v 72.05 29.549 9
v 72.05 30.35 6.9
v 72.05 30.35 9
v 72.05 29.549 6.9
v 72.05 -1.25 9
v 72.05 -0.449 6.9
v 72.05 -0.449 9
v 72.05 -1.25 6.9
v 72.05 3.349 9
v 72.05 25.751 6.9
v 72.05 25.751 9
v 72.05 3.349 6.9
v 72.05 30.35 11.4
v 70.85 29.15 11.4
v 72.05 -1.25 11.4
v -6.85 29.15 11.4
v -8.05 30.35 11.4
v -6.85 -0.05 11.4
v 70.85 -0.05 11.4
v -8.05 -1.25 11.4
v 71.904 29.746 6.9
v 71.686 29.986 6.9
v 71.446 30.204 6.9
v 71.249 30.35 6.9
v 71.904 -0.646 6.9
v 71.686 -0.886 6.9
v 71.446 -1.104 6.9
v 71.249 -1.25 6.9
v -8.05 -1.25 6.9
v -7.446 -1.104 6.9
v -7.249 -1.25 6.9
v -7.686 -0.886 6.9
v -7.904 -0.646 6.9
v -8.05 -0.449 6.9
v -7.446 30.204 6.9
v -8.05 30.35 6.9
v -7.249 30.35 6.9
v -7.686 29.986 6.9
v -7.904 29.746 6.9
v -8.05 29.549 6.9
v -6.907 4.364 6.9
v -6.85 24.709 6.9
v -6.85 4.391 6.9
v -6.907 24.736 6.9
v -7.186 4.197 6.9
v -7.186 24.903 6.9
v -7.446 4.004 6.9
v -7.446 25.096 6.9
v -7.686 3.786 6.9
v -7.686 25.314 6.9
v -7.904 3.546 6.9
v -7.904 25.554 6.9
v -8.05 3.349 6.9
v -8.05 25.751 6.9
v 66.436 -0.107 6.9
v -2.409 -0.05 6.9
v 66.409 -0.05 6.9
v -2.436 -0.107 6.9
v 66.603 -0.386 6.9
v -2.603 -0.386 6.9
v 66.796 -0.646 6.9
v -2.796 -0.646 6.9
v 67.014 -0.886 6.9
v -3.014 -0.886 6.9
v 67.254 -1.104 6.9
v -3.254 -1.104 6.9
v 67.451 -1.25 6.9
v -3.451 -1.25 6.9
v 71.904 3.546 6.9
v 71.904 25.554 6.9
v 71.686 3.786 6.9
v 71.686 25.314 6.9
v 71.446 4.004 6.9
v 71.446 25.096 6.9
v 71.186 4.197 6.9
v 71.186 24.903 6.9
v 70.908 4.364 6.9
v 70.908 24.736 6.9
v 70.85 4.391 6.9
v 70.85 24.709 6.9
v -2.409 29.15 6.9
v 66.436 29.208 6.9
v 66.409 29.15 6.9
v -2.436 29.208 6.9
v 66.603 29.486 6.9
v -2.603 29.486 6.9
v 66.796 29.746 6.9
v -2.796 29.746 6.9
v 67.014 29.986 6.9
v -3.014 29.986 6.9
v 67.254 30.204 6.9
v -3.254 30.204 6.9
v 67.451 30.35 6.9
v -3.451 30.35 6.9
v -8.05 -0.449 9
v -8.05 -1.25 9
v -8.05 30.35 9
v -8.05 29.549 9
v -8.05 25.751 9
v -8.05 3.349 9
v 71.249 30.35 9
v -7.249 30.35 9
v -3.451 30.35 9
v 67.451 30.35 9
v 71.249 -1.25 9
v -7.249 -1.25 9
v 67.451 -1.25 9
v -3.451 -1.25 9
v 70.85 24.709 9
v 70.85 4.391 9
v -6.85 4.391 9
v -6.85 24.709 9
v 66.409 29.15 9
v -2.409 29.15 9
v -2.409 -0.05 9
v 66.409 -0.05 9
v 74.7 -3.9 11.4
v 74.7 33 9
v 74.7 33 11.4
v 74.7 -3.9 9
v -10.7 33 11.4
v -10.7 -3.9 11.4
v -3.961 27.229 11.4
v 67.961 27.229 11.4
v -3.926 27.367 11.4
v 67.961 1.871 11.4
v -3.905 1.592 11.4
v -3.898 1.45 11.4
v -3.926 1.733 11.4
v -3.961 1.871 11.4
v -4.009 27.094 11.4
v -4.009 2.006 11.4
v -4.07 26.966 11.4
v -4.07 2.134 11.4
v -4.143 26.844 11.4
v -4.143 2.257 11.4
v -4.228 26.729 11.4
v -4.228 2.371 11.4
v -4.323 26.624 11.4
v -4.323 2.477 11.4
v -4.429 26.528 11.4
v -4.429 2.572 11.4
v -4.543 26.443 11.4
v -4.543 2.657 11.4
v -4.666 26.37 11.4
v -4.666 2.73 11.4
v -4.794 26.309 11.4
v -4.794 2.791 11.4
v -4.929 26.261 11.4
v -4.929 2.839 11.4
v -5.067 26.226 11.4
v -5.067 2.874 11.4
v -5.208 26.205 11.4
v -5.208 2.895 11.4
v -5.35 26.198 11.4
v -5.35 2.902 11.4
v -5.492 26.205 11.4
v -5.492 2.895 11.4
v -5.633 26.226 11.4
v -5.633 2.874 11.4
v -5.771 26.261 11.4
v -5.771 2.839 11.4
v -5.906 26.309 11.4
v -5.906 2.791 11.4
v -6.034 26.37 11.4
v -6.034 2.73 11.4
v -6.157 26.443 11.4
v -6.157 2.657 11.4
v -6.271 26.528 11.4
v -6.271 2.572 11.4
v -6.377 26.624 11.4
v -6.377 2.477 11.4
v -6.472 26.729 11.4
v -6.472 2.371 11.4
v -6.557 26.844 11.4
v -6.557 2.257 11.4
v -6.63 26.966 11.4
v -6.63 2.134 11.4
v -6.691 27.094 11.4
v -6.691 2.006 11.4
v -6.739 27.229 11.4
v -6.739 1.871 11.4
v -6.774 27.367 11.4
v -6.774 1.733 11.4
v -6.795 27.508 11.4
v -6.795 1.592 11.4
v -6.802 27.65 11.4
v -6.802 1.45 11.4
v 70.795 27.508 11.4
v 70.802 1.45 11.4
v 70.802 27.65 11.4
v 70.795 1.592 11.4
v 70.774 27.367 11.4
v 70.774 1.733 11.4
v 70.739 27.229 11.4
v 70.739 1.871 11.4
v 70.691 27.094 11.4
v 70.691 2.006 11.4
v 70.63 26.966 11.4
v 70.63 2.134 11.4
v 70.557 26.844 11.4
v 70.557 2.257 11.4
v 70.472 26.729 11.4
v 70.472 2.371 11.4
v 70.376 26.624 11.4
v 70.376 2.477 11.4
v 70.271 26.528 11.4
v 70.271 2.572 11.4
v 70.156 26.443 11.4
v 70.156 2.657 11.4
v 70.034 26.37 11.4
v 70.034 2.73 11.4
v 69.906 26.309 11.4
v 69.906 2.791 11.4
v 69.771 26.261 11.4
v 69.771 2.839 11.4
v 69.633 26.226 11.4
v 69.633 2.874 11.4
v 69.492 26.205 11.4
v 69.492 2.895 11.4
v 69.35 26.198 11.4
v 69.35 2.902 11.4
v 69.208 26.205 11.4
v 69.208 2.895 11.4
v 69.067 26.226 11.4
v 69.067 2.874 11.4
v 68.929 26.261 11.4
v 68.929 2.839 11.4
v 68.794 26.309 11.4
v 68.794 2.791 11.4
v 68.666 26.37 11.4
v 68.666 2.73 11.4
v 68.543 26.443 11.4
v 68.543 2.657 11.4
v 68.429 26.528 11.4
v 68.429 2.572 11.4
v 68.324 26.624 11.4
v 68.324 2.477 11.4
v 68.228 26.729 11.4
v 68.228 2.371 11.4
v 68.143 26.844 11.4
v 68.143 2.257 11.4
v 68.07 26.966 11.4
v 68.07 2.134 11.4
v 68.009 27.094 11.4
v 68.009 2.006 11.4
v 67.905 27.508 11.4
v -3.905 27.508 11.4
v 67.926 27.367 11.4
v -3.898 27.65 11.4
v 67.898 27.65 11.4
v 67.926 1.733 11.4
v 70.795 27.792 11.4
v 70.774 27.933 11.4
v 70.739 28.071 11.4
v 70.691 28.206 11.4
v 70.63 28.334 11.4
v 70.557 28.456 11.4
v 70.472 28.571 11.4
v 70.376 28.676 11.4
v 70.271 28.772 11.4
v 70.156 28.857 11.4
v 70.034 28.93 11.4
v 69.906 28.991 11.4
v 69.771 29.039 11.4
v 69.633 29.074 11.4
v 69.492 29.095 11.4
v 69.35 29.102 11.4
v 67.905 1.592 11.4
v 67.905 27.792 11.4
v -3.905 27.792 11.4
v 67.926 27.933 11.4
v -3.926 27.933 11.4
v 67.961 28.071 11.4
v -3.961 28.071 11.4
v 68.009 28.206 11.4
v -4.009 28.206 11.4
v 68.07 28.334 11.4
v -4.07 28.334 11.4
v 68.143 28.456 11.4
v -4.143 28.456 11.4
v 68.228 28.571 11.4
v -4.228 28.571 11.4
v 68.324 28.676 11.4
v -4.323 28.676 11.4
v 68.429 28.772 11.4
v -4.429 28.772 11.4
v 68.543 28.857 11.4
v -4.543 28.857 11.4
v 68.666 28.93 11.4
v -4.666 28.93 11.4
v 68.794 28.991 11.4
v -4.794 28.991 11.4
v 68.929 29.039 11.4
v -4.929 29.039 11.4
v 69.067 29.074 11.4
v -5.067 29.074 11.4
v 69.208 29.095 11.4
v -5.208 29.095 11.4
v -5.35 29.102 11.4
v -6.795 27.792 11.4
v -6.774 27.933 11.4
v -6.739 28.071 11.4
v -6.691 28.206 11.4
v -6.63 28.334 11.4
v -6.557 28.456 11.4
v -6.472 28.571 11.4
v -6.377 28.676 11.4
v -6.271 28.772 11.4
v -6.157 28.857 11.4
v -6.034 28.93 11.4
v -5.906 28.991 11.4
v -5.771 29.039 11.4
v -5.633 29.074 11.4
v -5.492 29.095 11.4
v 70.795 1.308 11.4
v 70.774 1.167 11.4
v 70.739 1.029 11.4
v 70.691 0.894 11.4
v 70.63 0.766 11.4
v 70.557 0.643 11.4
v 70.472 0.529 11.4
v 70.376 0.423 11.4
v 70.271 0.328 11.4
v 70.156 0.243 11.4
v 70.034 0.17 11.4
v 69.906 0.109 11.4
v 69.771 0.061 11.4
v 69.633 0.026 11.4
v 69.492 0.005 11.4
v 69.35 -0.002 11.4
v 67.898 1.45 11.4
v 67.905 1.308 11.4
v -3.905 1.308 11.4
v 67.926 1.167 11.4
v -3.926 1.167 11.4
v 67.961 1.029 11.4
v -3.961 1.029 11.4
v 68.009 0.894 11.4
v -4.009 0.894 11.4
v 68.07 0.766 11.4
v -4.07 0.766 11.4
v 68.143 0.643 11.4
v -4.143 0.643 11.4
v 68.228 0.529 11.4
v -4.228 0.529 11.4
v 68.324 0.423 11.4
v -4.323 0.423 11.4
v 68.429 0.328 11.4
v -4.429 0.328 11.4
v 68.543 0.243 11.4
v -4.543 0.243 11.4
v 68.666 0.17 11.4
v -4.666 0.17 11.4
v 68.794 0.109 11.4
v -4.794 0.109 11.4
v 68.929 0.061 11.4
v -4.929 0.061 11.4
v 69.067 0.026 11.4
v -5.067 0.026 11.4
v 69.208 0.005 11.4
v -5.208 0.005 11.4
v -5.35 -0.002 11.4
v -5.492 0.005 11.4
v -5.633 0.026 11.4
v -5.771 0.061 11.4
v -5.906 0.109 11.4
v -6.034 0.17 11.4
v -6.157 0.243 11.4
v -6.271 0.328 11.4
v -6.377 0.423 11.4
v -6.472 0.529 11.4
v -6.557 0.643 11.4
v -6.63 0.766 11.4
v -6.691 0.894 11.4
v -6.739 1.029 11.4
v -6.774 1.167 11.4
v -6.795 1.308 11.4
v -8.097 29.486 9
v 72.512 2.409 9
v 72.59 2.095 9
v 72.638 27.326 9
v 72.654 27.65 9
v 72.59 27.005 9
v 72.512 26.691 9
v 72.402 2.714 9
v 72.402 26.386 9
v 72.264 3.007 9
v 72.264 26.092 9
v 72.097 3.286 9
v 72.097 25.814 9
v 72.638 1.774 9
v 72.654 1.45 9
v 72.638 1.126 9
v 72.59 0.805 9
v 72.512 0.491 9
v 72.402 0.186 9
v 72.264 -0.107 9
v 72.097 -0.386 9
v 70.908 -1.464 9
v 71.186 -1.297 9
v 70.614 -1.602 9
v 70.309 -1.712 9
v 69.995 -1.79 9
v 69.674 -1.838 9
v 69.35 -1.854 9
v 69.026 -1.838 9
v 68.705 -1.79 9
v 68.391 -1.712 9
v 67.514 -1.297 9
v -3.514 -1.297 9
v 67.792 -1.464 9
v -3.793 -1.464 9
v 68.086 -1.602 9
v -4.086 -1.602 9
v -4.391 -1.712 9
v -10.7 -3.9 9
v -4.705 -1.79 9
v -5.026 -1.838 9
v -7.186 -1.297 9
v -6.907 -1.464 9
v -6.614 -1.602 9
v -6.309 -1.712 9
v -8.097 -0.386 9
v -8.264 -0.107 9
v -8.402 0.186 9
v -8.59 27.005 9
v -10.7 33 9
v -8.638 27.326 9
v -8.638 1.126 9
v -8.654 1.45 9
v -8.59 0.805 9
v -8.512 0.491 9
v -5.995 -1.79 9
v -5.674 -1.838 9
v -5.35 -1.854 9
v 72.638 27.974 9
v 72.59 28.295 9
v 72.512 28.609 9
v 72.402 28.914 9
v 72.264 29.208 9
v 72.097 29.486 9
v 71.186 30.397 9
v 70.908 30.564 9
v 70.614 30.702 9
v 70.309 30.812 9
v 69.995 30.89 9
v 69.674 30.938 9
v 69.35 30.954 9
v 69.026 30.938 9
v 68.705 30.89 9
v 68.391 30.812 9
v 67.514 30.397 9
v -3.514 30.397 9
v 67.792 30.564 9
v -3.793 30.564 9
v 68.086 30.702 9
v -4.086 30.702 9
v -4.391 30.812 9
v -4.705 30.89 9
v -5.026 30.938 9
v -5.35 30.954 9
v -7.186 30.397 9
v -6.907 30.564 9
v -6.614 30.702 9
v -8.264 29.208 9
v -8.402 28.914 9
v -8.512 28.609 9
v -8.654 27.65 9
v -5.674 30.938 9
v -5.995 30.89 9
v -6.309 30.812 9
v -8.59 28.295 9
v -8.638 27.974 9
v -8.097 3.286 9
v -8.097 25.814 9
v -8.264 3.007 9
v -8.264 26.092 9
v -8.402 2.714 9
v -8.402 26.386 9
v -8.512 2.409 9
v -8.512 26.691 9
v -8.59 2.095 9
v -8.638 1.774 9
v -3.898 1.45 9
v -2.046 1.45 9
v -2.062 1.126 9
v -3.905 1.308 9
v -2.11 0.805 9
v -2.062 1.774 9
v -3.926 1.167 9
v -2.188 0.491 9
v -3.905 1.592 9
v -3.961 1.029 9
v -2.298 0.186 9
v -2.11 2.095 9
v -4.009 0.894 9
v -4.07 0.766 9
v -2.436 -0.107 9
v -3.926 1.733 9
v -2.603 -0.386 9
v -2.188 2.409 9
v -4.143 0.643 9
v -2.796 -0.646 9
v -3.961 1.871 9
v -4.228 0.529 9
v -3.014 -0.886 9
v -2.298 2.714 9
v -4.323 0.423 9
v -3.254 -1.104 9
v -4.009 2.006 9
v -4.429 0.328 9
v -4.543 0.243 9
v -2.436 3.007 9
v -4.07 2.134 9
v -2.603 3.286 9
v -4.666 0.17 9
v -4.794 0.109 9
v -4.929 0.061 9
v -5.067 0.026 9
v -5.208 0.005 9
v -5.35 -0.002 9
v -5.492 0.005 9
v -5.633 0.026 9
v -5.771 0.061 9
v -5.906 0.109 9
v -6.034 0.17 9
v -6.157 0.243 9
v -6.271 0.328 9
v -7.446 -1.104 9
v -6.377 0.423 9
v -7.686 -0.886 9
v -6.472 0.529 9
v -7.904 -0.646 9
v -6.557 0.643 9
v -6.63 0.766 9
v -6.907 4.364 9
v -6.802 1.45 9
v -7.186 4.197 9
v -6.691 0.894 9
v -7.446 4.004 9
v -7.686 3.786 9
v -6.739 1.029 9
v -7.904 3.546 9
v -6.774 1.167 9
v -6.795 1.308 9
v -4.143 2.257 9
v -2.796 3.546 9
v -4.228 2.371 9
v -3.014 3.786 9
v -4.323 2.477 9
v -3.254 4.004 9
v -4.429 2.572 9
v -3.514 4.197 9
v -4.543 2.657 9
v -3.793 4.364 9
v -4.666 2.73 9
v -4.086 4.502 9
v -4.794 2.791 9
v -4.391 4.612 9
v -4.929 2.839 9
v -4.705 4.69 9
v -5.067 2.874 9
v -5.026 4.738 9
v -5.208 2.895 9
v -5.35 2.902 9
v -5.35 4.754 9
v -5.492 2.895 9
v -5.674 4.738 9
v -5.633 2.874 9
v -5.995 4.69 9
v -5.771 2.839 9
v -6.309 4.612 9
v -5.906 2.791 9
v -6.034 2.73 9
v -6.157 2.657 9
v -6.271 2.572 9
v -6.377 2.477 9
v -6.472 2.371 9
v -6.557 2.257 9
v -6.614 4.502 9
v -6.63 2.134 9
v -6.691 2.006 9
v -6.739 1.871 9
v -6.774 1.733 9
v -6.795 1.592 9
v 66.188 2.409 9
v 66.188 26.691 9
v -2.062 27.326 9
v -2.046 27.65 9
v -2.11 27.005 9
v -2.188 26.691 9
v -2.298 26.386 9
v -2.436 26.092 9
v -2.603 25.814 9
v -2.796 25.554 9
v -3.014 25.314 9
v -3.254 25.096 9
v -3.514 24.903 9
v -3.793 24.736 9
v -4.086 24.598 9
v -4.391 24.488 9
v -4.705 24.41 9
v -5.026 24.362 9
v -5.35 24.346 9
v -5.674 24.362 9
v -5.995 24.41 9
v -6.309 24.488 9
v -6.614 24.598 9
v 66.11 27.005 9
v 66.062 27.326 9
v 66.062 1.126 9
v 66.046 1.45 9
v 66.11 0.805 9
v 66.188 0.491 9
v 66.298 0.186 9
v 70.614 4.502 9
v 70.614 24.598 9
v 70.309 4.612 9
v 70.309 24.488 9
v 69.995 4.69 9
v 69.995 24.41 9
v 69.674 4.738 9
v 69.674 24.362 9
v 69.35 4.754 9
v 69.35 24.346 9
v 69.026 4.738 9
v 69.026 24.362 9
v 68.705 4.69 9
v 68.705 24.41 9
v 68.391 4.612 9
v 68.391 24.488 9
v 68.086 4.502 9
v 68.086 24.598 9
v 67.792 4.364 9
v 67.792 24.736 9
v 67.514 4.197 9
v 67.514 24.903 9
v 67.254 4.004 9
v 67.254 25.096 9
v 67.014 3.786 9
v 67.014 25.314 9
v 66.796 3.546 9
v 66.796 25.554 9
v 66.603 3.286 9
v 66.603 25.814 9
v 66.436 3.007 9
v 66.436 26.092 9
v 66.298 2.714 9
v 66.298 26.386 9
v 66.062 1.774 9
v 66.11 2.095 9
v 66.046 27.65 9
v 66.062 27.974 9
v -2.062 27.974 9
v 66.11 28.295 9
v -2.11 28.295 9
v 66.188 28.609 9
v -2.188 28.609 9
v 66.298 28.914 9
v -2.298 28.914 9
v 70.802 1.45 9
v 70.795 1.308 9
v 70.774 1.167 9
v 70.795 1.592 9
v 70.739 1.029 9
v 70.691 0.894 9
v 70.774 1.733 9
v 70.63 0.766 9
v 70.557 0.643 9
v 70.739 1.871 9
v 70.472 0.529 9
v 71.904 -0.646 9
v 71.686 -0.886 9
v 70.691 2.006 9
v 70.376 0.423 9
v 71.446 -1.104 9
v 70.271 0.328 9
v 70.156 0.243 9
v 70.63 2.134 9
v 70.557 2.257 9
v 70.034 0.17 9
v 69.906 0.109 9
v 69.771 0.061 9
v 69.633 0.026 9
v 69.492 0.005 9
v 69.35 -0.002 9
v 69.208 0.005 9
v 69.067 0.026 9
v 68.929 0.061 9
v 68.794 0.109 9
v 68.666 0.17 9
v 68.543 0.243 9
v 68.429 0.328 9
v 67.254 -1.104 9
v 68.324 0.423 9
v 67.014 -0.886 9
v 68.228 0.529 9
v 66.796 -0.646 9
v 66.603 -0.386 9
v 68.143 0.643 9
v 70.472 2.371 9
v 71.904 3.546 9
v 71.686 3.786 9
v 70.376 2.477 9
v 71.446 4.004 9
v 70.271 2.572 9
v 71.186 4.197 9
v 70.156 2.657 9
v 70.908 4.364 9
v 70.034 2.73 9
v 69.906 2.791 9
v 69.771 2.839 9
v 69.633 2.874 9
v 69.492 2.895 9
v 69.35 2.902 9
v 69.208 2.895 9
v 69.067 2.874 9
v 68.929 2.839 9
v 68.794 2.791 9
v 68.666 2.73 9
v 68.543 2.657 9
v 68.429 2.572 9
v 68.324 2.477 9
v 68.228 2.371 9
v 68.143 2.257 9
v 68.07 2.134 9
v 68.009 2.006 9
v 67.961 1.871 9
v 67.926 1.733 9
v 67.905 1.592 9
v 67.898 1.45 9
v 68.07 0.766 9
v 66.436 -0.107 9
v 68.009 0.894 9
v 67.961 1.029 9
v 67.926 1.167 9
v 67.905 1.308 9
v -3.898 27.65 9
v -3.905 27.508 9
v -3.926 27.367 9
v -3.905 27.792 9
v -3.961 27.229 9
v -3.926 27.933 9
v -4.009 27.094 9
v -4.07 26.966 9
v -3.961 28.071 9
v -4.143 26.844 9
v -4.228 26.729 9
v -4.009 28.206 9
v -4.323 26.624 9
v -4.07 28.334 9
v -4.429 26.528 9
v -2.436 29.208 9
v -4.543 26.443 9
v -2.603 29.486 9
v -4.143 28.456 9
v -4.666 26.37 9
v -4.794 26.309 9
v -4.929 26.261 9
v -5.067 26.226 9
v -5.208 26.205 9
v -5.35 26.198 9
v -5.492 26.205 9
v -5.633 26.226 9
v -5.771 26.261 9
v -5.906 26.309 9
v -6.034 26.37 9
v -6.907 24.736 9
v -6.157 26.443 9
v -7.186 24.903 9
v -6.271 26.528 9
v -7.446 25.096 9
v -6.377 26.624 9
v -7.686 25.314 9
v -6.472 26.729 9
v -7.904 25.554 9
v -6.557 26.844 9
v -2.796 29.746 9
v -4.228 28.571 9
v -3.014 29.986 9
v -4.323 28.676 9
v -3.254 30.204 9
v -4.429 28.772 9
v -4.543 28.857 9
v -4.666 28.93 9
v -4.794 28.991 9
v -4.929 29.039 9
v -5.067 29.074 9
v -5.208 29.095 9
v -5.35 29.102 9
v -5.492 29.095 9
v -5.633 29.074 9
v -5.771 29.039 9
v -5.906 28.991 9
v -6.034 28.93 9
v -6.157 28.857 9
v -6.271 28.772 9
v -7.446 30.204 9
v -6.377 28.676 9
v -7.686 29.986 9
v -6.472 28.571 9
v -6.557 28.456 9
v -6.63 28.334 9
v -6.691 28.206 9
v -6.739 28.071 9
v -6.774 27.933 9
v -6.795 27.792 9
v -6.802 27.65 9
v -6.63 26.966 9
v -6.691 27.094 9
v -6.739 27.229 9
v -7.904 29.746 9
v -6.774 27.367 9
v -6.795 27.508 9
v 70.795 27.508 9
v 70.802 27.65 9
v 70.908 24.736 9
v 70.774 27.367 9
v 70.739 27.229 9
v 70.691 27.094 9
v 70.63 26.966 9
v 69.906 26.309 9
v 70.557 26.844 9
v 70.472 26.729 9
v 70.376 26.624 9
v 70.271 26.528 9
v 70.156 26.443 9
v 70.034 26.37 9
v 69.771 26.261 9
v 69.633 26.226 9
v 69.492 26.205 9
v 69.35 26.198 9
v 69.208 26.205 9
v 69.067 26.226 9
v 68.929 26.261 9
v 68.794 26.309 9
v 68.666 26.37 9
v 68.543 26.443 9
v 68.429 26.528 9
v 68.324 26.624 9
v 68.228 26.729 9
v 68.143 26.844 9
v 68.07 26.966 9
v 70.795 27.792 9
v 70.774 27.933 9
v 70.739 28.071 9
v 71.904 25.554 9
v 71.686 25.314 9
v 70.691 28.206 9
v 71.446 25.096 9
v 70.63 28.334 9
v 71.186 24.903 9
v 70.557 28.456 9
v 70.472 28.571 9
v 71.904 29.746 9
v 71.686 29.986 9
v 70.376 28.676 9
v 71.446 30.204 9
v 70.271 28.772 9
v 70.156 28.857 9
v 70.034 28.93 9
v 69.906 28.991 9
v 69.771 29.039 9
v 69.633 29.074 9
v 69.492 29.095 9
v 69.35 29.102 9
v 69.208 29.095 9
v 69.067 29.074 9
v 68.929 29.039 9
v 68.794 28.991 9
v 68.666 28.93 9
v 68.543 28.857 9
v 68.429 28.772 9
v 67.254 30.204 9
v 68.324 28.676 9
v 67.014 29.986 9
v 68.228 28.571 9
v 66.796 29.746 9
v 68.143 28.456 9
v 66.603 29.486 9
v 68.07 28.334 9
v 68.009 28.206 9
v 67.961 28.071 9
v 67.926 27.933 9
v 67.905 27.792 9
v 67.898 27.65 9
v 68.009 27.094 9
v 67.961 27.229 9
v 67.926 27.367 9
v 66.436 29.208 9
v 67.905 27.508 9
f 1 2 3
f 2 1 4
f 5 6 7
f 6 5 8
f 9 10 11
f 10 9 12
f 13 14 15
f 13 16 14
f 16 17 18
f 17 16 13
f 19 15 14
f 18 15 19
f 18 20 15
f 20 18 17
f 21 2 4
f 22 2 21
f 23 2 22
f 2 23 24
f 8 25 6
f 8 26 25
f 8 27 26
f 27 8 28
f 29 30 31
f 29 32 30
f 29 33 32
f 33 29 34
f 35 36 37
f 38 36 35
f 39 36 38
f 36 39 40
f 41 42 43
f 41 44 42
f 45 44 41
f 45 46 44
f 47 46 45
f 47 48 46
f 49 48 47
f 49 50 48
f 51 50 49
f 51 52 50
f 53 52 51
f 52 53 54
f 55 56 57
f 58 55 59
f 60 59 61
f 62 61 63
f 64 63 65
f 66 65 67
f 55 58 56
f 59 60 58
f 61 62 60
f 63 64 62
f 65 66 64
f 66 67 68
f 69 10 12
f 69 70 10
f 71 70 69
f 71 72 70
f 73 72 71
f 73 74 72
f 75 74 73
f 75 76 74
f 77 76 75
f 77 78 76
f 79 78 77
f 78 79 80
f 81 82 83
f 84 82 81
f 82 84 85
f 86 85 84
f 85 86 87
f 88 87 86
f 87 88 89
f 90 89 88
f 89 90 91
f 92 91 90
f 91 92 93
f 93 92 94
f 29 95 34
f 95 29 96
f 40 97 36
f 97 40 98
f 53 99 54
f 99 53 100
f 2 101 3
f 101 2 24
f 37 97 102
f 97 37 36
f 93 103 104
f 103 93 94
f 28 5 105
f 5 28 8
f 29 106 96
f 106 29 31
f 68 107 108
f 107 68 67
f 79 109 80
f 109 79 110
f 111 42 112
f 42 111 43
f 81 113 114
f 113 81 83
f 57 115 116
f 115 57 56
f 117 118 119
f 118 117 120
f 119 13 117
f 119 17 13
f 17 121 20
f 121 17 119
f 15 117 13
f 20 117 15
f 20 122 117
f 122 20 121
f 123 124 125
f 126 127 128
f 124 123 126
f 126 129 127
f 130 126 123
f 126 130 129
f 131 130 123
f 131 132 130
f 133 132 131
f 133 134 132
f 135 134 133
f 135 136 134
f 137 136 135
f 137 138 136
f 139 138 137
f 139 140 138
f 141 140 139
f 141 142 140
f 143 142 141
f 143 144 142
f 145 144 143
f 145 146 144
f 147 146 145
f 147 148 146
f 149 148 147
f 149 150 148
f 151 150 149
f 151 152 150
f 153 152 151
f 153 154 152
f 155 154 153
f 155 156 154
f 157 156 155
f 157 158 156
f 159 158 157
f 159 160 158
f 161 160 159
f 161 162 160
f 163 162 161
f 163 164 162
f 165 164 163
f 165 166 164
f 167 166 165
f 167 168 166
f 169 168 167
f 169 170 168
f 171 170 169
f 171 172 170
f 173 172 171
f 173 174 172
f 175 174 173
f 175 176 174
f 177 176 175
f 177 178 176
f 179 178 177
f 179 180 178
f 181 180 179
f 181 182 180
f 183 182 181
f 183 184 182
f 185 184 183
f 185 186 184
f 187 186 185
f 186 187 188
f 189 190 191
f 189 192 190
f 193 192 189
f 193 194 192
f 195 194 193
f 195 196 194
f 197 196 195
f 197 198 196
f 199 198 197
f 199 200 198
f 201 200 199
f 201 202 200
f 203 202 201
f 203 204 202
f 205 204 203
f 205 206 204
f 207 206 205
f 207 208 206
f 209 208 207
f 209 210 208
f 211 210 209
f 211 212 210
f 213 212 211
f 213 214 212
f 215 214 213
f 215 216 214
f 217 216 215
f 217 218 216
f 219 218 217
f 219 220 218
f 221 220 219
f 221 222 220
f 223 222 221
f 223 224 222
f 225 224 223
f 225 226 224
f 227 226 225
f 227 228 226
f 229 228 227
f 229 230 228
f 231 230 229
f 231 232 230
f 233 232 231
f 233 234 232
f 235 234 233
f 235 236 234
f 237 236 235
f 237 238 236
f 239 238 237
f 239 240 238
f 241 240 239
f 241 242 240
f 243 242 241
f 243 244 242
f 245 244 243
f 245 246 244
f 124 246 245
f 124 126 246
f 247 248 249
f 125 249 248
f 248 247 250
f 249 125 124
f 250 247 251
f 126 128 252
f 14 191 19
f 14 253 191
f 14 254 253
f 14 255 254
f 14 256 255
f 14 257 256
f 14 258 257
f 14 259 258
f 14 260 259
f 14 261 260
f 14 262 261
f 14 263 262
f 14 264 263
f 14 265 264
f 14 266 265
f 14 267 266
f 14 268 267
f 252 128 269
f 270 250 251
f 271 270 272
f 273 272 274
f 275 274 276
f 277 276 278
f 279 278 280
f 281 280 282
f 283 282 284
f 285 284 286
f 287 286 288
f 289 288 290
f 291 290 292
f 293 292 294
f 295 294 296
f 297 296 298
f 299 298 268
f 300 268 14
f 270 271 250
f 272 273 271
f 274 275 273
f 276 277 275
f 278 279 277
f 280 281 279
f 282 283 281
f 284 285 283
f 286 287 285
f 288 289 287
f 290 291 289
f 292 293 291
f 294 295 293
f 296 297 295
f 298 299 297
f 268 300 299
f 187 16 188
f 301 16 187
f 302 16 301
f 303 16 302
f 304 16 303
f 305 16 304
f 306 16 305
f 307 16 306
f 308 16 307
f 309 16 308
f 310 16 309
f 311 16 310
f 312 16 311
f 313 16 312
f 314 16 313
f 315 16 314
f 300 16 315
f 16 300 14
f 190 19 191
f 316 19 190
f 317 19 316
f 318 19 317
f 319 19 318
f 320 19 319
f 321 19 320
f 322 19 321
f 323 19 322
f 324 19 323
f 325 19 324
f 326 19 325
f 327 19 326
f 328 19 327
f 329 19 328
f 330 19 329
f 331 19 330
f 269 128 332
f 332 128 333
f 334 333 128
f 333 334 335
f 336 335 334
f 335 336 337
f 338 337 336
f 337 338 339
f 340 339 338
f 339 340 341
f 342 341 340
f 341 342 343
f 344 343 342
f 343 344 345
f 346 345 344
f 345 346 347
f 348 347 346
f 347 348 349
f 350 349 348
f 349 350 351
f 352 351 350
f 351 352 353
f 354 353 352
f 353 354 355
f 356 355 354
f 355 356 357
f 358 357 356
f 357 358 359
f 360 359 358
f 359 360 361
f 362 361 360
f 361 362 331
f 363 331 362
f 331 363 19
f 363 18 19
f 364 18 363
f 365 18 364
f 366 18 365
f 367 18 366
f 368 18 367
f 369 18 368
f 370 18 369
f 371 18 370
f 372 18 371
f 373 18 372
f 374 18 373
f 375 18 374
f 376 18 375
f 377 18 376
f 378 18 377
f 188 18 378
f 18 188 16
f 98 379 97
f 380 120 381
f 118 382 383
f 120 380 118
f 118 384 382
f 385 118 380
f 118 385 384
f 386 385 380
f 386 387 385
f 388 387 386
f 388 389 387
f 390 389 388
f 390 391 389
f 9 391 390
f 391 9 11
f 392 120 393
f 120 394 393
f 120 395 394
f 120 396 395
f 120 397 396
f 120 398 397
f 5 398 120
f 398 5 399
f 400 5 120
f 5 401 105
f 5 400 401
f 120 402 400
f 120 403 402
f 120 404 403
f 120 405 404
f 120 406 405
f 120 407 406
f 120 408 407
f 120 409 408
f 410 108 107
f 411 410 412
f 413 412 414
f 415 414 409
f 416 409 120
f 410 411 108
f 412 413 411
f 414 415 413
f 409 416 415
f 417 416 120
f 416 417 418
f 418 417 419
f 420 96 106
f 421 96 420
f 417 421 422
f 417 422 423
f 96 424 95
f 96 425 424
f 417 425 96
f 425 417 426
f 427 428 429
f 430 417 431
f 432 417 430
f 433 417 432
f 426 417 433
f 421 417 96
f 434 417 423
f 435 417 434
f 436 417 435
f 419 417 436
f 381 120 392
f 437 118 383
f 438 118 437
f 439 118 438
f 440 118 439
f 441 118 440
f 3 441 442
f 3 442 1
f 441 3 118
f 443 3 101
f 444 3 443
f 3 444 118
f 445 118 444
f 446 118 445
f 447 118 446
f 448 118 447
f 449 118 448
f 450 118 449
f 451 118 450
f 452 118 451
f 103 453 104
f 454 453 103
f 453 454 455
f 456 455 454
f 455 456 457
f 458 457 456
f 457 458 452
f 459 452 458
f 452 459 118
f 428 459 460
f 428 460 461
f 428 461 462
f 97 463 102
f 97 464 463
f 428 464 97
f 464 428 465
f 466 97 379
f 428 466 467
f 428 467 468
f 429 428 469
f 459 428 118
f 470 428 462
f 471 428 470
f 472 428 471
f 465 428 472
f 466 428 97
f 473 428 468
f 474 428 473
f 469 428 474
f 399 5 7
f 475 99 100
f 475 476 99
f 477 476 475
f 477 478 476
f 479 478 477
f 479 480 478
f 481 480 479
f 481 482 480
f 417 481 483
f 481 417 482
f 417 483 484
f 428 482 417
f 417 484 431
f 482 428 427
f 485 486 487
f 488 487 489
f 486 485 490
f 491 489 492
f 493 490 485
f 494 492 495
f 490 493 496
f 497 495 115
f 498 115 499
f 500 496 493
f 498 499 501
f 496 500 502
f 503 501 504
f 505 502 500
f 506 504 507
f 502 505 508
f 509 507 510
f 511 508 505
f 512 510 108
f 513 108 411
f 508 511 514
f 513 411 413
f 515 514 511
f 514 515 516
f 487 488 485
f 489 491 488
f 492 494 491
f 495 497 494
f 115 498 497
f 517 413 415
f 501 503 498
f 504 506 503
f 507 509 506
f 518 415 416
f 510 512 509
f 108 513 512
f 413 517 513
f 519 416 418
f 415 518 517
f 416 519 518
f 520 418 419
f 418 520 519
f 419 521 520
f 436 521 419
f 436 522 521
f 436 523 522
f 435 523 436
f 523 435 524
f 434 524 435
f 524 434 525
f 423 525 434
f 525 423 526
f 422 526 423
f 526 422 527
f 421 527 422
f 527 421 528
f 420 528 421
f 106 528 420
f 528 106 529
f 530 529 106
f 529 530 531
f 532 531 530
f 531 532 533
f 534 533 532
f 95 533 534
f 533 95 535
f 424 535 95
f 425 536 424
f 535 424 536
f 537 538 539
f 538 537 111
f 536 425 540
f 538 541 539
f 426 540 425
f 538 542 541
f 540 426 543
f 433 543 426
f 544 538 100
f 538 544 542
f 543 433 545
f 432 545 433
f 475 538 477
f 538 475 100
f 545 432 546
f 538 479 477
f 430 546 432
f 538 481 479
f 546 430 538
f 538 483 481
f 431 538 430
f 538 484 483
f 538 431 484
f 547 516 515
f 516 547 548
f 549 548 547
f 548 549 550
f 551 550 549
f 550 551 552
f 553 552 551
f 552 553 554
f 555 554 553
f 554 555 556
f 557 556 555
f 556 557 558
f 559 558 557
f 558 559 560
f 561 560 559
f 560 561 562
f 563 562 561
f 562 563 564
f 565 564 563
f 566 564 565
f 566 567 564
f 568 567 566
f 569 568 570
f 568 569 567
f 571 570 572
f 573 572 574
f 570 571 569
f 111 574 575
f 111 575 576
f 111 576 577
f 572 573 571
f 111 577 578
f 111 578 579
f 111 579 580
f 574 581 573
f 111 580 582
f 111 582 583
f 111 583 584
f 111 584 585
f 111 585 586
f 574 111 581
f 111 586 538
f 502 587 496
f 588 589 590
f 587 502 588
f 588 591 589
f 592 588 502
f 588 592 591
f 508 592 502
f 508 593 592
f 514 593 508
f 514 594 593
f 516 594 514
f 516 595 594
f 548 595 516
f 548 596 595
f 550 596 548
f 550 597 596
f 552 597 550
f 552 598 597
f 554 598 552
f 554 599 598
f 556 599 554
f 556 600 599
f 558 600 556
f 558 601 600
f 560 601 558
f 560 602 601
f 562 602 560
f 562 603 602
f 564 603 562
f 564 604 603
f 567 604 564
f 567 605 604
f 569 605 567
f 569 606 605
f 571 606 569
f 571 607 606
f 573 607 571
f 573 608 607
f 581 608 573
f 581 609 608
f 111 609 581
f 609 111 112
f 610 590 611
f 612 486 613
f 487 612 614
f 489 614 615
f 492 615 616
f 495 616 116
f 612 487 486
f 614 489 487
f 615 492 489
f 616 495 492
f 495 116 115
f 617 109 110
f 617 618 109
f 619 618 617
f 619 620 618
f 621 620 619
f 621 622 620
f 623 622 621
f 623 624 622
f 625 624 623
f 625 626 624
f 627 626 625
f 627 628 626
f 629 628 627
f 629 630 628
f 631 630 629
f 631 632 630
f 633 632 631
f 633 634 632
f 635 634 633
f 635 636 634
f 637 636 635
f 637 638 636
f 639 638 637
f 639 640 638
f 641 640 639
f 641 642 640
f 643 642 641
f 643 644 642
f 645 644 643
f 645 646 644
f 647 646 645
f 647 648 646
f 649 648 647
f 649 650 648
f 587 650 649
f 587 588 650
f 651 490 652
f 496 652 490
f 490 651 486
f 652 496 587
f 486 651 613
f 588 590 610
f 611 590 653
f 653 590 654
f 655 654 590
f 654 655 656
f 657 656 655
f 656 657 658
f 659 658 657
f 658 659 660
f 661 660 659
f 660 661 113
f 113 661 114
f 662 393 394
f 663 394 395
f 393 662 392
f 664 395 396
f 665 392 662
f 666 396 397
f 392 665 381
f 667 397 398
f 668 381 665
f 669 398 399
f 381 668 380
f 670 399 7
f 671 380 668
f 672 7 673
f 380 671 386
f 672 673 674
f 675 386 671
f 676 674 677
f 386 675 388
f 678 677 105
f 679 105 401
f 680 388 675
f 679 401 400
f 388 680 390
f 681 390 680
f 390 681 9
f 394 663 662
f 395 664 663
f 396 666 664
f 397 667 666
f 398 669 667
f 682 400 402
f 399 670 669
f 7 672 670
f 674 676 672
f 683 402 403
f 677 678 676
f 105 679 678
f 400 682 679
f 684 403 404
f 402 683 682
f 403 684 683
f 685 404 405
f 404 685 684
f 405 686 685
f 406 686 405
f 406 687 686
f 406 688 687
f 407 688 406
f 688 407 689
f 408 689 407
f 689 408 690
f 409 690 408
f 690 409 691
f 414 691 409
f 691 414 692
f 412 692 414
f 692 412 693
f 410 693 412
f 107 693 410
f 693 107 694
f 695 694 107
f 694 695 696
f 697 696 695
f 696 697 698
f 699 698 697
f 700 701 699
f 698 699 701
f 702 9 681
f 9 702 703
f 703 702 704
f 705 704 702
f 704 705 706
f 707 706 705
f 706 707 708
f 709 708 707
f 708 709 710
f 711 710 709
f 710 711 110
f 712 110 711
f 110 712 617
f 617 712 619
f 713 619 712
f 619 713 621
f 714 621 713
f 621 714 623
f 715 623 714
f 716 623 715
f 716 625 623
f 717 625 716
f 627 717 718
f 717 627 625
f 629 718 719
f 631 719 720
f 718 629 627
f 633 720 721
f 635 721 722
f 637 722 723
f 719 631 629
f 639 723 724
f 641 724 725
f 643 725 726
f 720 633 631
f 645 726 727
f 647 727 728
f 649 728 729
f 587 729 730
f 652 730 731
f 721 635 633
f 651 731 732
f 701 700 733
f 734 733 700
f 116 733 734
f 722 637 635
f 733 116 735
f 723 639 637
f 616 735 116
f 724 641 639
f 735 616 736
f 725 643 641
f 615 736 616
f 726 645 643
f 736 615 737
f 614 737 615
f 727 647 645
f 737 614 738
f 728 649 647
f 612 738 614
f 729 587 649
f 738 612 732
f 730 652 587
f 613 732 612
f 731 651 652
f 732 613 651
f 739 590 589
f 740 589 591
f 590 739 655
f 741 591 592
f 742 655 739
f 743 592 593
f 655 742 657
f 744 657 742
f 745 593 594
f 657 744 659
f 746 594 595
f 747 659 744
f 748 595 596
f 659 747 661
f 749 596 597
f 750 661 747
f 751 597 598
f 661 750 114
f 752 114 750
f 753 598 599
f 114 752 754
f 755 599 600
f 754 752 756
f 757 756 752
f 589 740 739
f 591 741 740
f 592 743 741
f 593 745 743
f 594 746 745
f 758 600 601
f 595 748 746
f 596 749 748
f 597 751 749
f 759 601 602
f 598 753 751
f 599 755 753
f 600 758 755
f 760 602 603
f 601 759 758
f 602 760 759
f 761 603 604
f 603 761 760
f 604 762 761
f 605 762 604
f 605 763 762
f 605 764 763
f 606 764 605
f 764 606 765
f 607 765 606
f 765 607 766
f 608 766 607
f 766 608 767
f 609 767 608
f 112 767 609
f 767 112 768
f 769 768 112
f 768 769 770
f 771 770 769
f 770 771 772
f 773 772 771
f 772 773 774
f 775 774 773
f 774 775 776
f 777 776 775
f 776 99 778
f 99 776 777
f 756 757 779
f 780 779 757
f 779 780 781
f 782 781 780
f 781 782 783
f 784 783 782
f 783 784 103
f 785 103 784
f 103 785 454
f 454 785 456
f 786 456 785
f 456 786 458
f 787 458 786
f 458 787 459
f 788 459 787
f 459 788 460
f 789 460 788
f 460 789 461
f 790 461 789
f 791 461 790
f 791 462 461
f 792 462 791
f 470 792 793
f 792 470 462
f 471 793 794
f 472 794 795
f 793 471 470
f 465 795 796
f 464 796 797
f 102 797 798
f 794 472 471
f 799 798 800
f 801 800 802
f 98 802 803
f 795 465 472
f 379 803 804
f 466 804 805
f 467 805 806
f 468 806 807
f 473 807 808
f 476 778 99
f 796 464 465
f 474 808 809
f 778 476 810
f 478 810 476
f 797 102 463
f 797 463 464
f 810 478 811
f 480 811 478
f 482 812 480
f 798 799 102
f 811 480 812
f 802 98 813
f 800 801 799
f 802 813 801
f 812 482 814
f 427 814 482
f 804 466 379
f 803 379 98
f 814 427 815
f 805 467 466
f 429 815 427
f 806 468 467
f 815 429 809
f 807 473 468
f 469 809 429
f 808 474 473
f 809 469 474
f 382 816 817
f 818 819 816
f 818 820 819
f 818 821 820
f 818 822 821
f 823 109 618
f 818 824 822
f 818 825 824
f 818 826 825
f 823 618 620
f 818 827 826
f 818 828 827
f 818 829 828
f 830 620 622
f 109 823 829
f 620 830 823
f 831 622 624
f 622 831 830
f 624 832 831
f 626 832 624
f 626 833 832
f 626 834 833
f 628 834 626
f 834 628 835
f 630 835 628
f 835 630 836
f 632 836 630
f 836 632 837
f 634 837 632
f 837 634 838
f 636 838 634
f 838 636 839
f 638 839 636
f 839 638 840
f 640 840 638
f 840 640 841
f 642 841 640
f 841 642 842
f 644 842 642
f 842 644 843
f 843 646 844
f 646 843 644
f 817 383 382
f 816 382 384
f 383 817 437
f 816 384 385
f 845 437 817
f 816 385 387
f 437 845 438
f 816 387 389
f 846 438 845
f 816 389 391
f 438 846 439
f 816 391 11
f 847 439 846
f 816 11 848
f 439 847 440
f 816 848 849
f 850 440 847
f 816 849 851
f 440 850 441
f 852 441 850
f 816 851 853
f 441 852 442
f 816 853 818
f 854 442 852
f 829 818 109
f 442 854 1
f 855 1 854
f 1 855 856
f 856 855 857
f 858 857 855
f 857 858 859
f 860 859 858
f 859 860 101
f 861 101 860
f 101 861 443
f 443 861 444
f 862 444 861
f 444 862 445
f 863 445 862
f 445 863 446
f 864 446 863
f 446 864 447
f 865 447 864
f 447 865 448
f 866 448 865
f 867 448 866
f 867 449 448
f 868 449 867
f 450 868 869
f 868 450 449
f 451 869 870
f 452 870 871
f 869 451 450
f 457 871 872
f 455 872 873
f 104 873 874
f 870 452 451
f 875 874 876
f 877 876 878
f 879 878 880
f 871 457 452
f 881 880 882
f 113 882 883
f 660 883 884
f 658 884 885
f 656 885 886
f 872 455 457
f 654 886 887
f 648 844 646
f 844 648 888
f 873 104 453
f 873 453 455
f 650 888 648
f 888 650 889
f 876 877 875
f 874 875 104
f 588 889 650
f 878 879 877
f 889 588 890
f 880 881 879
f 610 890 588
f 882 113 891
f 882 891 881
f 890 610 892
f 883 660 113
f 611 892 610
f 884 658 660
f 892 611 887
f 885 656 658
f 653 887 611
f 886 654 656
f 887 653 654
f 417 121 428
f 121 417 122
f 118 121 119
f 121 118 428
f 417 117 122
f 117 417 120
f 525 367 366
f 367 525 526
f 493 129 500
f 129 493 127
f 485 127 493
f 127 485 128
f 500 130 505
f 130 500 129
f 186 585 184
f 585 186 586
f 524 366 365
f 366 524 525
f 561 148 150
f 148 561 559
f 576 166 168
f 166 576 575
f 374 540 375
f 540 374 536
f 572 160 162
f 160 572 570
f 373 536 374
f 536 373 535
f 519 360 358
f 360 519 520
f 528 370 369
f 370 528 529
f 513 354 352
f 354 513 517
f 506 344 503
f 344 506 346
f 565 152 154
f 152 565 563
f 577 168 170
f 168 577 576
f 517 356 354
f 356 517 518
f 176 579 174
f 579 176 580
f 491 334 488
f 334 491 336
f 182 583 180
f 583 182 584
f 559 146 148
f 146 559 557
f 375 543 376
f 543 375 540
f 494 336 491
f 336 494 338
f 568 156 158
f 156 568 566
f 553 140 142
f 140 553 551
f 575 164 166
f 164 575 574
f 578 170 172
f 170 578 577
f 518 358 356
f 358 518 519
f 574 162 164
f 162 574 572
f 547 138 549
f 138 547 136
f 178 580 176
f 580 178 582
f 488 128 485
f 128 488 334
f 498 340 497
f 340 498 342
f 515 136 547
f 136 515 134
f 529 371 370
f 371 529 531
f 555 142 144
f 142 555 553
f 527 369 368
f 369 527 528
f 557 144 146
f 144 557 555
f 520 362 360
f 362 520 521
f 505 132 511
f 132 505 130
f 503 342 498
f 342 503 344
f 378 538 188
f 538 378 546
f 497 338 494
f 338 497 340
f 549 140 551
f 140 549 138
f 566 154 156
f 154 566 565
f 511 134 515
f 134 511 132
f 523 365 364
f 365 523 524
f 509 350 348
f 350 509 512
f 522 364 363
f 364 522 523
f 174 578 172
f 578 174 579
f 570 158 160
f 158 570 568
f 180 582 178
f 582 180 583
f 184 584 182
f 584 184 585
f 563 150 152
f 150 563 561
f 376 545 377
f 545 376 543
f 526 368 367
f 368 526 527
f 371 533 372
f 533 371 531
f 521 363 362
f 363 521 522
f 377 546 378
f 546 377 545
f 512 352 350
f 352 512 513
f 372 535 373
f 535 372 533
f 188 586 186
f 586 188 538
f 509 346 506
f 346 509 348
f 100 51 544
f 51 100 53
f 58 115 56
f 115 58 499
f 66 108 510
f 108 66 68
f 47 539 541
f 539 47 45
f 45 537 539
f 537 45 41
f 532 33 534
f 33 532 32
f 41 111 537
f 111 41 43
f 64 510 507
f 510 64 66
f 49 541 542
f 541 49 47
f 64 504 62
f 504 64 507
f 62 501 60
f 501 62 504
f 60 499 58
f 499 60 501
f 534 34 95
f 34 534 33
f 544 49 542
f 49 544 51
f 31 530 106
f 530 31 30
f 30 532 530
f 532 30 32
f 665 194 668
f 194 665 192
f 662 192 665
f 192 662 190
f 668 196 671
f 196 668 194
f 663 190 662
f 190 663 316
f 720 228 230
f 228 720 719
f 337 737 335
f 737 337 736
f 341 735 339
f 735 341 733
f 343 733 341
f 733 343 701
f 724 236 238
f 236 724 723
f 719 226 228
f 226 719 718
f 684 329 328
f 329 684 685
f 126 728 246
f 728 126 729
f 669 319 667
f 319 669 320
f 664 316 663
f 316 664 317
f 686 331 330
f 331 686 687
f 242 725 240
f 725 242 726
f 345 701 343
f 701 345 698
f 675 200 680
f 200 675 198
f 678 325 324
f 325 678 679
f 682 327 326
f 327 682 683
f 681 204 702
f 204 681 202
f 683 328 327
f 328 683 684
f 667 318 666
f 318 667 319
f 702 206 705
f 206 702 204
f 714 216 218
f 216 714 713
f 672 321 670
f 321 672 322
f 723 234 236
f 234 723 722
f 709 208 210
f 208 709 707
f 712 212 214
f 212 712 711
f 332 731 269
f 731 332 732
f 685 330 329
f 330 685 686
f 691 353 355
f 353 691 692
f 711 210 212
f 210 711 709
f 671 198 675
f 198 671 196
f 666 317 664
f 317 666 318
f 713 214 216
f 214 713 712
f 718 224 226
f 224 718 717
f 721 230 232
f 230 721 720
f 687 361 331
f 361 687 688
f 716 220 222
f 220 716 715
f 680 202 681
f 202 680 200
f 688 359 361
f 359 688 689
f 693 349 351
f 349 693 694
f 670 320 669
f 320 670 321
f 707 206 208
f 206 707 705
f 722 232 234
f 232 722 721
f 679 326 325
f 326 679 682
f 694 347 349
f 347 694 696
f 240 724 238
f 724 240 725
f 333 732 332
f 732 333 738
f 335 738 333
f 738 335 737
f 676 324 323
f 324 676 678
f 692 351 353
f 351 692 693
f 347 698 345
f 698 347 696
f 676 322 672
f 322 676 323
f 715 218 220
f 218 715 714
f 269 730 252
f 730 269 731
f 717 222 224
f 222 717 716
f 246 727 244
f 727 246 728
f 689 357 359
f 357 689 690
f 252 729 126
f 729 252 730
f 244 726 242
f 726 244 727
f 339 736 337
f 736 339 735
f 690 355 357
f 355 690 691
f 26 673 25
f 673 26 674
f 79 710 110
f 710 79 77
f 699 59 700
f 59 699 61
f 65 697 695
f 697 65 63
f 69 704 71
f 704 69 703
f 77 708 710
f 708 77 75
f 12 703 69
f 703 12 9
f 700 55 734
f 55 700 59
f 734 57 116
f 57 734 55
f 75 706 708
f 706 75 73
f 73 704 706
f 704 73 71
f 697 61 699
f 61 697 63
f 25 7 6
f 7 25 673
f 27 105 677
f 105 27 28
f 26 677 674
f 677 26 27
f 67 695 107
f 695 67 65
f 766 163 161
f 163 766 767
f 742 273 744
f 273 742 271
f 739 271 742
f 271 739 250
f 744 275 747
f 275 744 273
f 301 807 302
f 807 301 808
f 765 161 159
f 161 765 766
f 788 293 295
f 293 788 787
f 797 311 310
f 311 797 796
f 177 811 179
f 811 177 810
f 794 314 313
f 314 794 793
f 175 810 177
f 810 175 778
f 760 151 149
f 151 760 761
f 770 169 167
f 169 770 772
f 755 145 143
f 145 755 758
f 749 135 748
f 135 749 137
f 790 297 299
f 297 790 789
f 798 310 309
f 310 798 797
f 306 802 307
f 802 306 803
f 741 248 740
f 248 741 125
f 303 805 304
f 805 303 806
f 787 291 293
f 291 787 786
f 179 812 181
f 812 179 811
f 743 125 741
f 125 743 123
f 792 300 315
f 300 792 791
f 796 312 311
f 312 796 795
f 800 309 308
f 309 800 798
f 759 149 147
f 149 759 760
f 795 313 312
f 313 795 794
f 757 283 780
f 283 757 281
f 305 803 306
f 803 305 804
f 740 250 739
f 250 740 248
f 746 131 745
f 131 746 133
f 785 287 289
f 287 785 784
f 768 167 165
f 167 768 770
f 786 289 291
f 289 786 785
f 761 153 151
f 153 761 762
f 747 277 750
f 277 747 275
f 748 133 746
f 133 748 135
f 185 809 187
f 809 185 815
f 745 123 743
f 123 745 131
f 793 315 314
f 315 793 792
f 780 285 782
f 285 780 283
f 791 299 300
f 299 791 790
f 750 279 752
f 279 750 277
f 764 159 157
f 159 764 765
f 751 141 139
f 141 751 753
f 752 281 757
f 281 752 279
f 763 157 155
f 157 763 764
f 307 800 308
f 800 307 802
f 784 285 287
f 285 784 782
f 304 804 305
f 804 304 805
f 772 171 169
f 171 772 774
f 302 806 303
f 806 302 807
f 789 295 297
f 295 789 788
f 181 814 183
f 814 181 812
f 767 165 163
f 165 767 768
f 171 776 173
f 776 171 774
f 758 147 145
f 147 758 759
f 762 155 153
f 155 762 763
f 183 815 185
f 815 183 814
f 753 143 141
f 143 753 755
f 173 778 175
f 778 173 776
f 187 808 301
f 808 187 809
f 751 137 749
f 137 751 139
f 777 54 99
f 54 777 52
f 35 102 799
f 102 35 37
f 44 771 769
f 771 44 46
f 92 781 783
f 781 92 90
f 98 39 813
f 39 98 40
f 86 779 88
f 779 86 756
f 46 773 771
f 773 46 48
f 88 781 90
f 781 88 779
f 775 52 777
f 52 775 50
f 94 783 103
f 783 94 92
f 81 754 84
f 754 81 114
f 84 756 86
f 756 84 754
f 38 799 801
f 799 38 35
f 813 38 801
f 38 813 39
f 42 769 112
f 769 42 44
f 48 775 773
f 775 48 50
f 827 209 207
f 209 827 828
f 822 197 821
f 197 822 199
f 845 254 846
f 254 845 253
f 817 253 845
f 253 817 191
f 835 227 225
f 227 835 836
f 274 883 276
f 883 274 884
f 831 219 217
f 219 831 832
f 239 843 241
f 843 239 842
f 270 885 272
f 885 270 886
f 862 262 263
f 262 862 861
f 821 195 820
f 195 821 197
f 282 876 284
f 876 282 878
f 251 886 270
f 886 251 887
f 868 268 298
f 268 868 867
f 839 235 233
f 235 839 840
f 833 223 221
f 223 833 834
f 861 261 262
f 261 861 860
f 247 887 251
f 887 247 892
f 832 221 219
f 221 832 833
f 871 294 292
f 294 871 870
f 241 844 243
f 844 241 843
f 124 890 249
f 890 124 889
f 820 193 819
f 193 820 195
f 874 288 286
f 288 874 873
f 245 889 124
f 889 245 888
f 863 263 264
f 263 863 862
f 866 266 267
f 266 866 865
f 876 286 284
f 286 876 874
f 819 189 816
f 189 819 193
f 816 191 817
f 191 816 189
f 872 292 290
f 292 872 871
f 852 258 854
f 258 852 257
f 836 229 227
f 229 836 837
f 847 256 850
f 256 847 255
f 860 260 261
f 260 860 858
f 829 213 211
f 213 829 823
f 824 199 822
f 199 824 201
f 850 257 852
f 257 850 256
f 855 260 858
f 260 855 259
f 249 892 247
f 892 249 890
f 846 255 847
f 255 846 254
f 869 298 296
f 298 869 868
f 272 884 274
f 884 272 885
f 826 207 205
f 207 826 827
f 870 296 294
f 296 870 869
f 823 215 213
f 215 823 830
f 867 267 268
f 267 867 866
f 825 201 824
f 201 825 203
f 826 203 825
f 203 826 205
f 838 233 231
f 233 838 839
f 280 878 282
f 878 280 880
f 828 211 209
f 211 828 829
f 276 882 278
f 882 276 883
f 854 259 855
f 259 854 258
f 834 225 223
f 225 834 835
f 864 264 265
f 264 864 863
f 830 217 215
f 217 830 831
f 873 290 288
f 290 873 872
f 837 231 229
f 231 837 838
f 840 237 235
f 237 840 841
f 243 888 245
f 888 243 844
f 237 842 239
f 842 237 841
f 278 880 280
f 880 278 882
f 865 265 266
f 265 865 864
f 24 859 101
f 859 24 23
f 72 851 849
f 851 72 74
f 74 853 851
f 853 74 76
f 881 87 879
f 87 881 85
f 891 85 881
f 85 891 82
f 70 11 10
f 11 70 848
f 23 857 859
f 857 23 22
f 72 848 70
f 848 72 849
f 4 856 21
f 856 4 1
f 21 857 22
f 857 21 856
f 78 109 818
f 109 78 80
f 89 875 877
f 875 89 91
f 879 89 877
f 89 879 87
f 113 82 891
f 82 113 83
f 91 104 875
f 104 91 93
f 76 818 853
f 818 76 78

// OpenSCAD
// body lid
difference() {
  union() {
    // body lid (lid_plate)
    multmatrix([[1, 0, 0, 32], [0, 1, 0, 14.55], [0, 0, 1, 9], [0, 0, 0, 1]]) translate([-42.7, -18.45, 0]) cube([85.4, 36.9, 2.4]);
    // add lid_lip (lip)
    multmatrix([[1, 0, 0, 32], [0, 1, 0, 14.55], [0, 0, 1, 6.9], [0, 0, 0, 1]]) difference() { translate([-40.05, -15.8, 0]) cube([80.1, 31.6, 4.5]); translate([0, 0, -1]) translate([-38.85, -14.6, 0]) cube([77.7, 29.2, 6.5]); }
  }
  // cut boss_1_lid_hole (screw_hole)
  multmatrix([[1, 0, 0, -5.35], [0, 1, 0, 1.45], [0, 0, 1, 8], [0, 0, 0, 1]]) cylinder(h=4.4, d=2.903497, $fn=64);
  // cut boss_1_lip_notch (lip_notch)
  multmatrix([[1, 0, 0, -5.35], [0, 1, 0, 1.45], [0, 0, 1, 5.9], [0, 0, 0, 1]]) cylinder(h=3.1, d=6.60796, $fn=64);
  // cut boss_2_lid_hole (screw_hole)
  multmatrix([[1, 0, 0, 69.35], [0, 1, 0, 1.45], [0, 0, 1, 8], [0, 0, 0, 1]]) cylinder(h=4.4, d=2.903497, $fn=64);
  // cut boss_2_lip_notch (lip_notch)
  multmatrix([[1, 0, 0, 69.35], [0, 1, 0, 1.45], [0, 0, 1, 5.9], [0, 0, 0, 1]]) cylinder(h=3.1, d=6.60796, $fn=64);
  // cut boss_3_lid_hole (screw_hole)
  multmatrix([[1, 0, 0, -5.35], [0, 1, 0, 27.65], [0, 0, 1, 8], [0, 0, 0, 1]]) cylinder(h=4.4, d=2.903497, $fn=64);
  // cut boss_3_lip_notch (lip_notch)
  multmatrix([[1, 0, 0, -5.35], [0, 1, 0, 27.65], [0, 0, 1, 5.9], [0, 0, 0, 1]]) cylinder(h=3.1, d=6.60796, $fn=64);
  // cut boss_4_lid_hole (screw_hole)
  multmatrix([[1, 0, 0, 69.35], [0, 1, 0, 27.65], [0, 0, 1, 8], [0, 0, 0, 1]]) cylinder(h=4.4, d=2.903497, $fn=64);
  // cut boss_4_lip_notch (lip_notch)
  multmatrix([[1, 0, 0, 69.35], [0, 1, 0, 27.65], [0, 0, 1, 5.9], [0, 0, 0, 1]]) cylinder(h=3.1, d=6.60796, $fn=64);
}
